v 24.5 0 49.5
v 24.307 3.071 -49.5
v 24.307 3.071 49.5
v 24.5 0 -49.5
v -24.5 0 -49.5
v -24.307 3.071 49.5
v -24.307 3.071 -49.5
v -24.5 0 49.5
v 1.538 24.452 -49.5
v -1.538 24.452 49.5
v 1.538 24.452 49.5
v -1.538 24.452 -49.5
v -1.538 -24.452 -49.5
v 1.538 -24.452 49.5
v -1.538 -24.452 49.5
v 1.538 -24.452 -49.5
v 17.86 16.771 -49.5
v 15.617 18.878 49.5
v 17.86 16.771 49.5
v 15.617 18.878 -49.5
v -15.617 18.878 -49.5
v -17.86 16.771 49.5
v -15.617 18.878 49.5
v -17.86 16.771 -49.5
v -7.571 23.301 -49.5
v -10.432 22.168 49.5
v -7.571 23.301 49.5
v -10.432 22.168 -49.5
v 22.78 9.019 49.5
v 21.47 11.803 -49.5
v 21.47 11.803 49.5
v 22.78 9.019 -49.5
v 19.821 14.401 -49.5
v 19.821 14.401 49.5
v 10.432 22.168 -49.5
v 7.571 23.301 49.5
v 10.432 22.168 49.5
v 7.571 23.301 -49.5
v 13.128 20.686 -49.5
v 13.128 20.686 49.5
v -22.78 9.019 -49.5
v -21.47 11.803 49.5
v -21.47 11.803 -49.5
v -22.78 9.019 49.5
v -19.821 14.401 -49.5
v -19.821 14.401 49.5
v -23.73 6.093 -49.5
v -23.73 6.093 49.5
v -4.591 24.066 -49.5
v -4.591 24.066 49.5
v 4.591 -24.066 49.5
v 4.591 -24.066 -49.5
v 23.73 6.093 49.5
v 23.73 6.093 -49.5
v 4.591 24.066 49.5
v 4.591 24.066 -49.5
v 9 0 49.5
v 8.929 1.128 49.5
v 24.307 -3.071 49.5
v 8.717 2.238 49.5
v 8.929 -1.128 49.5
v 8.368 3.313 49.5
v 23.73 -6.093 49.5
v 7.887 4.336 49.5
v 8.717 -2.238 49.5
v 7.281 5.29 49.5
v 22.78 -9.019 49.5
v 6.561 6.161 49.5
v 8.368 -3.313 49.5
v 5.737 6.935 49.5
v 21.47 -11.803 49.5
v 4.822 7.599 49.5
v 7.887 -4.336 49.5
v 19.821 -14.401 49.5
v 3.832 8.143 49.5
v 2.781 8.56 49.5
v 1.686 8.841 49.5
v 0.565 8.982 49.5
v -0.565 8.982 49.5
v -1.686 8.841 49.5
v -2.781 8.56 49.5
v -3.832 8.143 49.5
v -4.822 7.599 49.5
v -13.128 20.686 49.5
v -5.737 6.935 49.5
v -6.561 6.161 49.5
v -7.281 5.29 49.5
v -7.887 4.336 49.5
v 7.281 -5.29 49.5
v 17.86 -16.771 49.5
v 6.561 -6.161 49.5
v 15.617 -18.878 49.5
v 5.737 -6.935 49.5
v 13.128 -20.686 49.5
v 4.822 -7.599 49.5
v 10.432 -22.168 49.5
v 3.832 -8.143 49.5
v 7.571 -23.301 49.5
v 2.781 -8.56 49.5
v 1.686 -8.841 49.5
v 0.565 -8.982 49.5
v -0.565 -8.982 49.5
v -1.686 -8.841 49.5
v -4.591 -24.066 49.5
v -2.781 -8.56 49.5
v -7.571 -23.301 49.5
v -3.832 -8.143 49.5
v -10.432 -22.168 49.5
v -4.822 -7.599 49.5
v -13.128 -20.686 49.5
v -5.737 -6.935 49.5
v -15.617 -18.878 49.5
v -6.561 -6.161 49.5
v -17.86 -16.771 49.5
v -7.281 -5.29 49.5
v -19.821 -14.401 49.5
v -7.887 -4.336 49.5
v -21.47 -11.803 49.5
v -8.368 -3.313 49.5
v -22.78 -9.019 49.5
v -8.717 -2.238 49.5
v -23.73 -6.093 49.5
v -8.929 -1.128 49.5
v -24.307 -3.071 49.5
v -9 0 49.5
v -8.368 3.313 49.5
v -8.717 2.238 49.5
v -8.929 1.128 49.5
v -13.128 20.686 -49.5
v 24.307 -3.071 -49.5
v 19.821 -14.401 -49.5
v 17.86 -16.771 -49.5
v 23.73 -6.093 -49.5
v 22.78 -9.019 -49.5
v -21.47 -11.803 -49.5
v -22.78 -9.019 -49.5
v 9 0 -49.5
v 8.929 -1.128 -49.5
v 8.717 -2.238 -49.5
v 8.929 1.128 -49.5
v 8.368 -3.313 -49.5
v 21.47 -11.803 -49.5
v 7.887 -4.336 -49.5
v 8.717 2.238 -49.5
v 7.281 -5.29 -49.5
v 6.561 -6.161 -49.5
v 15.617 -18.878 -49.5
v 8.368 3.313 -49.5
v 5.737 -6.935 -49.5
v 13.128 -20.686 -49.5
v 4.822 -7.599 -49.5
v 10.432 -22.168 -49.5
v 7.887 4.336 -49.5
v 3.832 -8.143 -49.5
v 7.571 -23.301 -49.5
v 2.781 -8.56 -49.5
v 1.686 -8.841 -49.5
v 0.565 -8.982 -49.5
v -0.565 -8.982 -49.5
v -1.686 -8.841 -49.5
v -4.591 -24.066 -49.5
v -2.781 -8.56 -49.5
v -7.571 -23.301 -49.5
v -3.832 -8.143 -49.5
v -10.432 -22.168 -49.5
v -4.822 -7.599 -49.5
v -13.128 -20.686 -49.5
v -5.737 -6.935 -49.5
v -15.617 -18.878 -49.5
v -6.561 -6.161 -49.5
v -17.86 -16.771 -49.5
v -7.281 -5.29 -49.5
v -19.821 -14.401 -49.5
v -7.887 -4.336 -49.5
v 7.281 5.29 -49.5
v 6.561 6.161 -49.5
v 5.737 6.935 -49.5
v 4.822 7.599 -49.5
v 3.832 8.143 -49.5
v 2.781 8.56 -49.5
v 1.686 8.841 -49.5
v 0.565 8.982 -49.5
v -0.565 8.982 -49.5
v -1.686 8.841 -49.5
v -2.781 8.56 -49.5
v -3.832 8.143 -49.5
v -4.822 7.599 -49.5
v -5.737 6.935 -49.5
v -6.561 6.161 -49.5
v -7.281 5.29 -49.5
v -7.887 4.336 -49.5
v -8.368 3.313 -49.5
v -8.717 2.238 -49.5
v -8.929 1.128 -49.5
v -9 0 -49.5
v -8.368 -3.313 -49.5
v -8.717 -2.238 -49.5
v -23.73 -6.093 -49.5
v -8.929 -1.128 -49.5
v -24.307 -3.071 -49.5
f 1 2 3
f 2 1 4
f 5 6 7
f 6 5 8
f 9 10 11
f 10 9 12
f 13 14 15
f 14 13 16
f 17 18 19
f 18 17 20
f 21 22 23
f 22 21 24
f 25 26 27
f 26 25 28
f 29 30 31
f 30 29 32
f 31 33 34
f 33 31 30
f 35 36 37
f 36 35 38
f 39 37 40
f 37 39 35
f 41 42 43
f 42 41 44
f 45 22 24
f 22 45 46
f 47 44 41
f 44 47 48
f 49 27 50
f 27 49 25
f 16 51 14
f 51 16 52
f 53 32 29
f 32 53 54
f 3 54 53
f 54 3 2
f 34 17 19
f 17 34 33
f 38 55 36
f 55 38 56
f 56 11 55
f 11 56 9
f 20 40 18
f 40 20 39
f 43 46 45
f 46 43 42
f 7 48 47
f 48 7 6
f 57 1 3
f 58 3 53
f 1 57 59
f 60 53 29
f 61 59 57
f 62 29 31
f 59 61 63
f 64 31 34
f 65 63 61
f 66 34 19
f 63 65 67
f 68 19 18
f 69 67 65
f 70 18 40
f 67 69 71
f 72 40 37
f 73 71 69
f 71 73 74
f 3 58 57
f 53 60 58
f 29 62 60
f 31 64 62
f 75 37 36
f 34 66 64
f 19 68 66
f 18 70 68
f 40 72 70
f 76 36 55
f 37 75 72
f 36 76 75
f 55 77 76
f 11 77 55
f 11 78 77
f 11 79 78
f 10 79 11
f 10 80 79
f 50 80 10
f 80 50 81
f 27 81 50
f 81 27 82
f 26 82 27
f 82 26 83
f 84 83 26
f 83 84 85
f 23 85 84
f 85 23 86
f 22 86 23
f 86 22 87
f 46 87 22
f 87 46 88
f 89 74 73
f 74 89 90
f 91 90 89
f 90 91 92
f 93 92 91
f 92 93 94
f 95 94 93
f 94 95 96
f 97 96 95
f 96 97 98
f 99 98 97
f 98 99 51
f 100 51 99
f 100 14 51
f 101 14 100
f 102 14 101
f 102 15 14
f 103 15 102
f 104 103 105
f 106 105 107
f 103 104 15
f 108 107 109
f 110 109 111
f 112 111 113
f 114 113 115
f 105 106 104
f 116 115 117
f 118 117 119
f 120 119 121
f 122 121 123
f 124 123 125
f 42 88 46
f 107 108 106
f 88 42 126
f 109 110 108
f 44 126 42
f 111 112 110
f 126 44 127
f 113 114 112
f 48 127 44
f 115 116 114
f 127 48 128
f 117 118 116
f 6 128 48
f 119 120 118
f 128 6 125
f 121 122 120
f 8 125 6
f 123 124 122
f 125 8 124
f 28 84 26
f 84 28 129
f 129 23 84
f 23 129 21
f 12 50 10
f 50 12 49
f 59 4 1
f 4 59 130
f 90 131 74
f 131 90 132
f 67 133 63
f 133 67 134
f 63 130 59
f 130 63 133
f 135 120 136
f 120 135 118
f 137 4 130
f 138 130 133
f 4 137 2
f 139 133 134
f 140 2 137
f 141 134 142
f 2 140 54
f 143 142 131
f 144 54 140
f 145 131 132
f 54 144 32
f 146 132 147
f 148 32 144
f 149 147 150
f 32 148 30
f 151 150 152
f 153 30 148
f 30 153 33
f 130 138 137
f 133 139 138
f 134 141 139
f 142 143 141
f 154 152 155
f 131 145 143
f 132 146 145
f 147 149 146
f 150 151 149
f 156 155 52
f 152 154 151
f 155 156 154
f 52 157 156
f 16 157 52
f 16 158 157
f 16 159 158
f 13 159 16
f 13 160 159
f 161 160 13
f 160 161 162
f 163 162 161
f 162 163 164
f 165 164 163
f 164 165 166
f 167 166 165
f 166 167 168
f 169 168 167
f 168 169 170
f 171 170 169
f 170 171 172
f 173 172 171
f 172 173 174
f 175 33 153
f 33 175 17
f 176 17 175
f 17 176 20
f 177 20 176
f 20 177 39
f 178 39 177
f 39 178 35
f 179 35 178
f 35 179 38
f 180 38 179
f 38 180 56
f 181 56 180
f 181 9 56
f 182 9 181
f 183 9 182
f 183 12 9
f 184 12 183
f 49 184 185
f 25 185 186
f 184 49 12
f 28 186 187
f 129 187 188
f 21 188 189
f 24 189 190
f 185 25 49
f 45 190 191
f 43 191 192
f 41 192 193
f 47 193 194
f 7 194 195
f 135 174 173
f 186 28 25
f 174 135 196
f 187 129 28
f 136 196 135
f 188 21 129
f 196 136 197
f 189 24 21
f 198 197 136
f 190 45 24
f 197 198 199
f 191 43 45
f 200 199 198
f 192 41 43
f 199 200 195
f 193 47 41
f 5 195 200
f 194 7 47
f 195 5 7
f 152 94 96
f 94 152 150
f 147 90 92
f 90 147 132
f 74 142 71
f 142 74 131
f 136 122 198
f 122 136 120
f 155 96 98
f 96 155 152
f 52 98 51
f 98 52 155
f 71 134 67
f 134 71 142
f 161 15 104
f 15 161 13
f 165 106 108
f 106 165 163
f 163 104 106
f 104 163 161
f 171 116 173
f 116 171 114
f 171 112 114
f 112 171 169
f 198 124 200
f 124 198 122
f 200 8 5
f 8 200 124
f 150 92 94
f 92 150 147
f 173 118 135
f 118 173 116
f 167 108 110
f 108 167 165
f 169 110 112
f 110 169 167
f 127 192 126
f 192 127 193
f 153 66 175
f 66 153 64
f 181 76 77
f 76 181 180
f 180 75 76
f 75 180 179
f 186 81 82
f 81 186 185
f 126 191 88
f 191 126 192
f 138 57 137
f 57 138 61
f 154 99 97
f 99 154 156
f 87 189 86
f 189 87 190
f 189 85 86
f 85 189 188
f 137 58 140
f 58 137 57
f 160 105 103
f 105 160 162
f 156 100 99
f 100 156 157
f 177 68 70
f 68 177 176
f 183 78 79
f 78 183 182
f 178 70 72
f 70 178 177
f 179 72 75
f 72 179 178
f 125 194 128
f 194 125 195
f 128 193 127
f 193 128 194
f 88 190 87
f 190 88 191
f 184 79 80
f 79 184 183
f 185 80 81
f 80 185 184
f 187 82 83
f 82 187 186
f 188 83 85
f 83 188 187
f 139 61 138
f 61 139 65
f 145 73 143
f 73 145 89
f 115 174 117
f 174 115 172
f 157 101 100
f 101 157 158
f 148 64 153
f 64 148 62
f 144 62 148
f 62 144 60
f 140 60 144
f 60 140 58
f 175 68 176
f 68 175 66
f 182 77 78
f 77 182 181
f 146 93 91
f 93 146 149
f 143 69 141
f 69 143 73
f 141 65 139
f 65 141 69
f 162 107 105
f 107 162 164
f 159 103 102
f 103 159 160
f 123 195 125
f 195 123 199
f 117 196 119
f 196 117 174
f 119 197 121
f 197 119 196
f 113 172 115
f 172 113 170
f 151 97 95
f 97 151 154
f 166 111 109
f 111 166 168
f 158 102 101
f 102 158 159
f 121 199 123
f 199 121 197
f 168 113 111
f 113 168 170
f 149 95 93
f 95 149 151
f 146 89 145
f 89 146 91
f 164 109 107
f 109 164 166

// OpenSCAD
$fn = 50;


difference() {
	union() {
		translate(v = [0, 0, -49.5000000000]) {
			cylinder(h = 99, r = 24.5000000000);
		}
	}
	union() {
		translate(v = [0, 0, -100.0000000000]) {
			cylinder(h = 200, r = 9);
		}
	}
}
